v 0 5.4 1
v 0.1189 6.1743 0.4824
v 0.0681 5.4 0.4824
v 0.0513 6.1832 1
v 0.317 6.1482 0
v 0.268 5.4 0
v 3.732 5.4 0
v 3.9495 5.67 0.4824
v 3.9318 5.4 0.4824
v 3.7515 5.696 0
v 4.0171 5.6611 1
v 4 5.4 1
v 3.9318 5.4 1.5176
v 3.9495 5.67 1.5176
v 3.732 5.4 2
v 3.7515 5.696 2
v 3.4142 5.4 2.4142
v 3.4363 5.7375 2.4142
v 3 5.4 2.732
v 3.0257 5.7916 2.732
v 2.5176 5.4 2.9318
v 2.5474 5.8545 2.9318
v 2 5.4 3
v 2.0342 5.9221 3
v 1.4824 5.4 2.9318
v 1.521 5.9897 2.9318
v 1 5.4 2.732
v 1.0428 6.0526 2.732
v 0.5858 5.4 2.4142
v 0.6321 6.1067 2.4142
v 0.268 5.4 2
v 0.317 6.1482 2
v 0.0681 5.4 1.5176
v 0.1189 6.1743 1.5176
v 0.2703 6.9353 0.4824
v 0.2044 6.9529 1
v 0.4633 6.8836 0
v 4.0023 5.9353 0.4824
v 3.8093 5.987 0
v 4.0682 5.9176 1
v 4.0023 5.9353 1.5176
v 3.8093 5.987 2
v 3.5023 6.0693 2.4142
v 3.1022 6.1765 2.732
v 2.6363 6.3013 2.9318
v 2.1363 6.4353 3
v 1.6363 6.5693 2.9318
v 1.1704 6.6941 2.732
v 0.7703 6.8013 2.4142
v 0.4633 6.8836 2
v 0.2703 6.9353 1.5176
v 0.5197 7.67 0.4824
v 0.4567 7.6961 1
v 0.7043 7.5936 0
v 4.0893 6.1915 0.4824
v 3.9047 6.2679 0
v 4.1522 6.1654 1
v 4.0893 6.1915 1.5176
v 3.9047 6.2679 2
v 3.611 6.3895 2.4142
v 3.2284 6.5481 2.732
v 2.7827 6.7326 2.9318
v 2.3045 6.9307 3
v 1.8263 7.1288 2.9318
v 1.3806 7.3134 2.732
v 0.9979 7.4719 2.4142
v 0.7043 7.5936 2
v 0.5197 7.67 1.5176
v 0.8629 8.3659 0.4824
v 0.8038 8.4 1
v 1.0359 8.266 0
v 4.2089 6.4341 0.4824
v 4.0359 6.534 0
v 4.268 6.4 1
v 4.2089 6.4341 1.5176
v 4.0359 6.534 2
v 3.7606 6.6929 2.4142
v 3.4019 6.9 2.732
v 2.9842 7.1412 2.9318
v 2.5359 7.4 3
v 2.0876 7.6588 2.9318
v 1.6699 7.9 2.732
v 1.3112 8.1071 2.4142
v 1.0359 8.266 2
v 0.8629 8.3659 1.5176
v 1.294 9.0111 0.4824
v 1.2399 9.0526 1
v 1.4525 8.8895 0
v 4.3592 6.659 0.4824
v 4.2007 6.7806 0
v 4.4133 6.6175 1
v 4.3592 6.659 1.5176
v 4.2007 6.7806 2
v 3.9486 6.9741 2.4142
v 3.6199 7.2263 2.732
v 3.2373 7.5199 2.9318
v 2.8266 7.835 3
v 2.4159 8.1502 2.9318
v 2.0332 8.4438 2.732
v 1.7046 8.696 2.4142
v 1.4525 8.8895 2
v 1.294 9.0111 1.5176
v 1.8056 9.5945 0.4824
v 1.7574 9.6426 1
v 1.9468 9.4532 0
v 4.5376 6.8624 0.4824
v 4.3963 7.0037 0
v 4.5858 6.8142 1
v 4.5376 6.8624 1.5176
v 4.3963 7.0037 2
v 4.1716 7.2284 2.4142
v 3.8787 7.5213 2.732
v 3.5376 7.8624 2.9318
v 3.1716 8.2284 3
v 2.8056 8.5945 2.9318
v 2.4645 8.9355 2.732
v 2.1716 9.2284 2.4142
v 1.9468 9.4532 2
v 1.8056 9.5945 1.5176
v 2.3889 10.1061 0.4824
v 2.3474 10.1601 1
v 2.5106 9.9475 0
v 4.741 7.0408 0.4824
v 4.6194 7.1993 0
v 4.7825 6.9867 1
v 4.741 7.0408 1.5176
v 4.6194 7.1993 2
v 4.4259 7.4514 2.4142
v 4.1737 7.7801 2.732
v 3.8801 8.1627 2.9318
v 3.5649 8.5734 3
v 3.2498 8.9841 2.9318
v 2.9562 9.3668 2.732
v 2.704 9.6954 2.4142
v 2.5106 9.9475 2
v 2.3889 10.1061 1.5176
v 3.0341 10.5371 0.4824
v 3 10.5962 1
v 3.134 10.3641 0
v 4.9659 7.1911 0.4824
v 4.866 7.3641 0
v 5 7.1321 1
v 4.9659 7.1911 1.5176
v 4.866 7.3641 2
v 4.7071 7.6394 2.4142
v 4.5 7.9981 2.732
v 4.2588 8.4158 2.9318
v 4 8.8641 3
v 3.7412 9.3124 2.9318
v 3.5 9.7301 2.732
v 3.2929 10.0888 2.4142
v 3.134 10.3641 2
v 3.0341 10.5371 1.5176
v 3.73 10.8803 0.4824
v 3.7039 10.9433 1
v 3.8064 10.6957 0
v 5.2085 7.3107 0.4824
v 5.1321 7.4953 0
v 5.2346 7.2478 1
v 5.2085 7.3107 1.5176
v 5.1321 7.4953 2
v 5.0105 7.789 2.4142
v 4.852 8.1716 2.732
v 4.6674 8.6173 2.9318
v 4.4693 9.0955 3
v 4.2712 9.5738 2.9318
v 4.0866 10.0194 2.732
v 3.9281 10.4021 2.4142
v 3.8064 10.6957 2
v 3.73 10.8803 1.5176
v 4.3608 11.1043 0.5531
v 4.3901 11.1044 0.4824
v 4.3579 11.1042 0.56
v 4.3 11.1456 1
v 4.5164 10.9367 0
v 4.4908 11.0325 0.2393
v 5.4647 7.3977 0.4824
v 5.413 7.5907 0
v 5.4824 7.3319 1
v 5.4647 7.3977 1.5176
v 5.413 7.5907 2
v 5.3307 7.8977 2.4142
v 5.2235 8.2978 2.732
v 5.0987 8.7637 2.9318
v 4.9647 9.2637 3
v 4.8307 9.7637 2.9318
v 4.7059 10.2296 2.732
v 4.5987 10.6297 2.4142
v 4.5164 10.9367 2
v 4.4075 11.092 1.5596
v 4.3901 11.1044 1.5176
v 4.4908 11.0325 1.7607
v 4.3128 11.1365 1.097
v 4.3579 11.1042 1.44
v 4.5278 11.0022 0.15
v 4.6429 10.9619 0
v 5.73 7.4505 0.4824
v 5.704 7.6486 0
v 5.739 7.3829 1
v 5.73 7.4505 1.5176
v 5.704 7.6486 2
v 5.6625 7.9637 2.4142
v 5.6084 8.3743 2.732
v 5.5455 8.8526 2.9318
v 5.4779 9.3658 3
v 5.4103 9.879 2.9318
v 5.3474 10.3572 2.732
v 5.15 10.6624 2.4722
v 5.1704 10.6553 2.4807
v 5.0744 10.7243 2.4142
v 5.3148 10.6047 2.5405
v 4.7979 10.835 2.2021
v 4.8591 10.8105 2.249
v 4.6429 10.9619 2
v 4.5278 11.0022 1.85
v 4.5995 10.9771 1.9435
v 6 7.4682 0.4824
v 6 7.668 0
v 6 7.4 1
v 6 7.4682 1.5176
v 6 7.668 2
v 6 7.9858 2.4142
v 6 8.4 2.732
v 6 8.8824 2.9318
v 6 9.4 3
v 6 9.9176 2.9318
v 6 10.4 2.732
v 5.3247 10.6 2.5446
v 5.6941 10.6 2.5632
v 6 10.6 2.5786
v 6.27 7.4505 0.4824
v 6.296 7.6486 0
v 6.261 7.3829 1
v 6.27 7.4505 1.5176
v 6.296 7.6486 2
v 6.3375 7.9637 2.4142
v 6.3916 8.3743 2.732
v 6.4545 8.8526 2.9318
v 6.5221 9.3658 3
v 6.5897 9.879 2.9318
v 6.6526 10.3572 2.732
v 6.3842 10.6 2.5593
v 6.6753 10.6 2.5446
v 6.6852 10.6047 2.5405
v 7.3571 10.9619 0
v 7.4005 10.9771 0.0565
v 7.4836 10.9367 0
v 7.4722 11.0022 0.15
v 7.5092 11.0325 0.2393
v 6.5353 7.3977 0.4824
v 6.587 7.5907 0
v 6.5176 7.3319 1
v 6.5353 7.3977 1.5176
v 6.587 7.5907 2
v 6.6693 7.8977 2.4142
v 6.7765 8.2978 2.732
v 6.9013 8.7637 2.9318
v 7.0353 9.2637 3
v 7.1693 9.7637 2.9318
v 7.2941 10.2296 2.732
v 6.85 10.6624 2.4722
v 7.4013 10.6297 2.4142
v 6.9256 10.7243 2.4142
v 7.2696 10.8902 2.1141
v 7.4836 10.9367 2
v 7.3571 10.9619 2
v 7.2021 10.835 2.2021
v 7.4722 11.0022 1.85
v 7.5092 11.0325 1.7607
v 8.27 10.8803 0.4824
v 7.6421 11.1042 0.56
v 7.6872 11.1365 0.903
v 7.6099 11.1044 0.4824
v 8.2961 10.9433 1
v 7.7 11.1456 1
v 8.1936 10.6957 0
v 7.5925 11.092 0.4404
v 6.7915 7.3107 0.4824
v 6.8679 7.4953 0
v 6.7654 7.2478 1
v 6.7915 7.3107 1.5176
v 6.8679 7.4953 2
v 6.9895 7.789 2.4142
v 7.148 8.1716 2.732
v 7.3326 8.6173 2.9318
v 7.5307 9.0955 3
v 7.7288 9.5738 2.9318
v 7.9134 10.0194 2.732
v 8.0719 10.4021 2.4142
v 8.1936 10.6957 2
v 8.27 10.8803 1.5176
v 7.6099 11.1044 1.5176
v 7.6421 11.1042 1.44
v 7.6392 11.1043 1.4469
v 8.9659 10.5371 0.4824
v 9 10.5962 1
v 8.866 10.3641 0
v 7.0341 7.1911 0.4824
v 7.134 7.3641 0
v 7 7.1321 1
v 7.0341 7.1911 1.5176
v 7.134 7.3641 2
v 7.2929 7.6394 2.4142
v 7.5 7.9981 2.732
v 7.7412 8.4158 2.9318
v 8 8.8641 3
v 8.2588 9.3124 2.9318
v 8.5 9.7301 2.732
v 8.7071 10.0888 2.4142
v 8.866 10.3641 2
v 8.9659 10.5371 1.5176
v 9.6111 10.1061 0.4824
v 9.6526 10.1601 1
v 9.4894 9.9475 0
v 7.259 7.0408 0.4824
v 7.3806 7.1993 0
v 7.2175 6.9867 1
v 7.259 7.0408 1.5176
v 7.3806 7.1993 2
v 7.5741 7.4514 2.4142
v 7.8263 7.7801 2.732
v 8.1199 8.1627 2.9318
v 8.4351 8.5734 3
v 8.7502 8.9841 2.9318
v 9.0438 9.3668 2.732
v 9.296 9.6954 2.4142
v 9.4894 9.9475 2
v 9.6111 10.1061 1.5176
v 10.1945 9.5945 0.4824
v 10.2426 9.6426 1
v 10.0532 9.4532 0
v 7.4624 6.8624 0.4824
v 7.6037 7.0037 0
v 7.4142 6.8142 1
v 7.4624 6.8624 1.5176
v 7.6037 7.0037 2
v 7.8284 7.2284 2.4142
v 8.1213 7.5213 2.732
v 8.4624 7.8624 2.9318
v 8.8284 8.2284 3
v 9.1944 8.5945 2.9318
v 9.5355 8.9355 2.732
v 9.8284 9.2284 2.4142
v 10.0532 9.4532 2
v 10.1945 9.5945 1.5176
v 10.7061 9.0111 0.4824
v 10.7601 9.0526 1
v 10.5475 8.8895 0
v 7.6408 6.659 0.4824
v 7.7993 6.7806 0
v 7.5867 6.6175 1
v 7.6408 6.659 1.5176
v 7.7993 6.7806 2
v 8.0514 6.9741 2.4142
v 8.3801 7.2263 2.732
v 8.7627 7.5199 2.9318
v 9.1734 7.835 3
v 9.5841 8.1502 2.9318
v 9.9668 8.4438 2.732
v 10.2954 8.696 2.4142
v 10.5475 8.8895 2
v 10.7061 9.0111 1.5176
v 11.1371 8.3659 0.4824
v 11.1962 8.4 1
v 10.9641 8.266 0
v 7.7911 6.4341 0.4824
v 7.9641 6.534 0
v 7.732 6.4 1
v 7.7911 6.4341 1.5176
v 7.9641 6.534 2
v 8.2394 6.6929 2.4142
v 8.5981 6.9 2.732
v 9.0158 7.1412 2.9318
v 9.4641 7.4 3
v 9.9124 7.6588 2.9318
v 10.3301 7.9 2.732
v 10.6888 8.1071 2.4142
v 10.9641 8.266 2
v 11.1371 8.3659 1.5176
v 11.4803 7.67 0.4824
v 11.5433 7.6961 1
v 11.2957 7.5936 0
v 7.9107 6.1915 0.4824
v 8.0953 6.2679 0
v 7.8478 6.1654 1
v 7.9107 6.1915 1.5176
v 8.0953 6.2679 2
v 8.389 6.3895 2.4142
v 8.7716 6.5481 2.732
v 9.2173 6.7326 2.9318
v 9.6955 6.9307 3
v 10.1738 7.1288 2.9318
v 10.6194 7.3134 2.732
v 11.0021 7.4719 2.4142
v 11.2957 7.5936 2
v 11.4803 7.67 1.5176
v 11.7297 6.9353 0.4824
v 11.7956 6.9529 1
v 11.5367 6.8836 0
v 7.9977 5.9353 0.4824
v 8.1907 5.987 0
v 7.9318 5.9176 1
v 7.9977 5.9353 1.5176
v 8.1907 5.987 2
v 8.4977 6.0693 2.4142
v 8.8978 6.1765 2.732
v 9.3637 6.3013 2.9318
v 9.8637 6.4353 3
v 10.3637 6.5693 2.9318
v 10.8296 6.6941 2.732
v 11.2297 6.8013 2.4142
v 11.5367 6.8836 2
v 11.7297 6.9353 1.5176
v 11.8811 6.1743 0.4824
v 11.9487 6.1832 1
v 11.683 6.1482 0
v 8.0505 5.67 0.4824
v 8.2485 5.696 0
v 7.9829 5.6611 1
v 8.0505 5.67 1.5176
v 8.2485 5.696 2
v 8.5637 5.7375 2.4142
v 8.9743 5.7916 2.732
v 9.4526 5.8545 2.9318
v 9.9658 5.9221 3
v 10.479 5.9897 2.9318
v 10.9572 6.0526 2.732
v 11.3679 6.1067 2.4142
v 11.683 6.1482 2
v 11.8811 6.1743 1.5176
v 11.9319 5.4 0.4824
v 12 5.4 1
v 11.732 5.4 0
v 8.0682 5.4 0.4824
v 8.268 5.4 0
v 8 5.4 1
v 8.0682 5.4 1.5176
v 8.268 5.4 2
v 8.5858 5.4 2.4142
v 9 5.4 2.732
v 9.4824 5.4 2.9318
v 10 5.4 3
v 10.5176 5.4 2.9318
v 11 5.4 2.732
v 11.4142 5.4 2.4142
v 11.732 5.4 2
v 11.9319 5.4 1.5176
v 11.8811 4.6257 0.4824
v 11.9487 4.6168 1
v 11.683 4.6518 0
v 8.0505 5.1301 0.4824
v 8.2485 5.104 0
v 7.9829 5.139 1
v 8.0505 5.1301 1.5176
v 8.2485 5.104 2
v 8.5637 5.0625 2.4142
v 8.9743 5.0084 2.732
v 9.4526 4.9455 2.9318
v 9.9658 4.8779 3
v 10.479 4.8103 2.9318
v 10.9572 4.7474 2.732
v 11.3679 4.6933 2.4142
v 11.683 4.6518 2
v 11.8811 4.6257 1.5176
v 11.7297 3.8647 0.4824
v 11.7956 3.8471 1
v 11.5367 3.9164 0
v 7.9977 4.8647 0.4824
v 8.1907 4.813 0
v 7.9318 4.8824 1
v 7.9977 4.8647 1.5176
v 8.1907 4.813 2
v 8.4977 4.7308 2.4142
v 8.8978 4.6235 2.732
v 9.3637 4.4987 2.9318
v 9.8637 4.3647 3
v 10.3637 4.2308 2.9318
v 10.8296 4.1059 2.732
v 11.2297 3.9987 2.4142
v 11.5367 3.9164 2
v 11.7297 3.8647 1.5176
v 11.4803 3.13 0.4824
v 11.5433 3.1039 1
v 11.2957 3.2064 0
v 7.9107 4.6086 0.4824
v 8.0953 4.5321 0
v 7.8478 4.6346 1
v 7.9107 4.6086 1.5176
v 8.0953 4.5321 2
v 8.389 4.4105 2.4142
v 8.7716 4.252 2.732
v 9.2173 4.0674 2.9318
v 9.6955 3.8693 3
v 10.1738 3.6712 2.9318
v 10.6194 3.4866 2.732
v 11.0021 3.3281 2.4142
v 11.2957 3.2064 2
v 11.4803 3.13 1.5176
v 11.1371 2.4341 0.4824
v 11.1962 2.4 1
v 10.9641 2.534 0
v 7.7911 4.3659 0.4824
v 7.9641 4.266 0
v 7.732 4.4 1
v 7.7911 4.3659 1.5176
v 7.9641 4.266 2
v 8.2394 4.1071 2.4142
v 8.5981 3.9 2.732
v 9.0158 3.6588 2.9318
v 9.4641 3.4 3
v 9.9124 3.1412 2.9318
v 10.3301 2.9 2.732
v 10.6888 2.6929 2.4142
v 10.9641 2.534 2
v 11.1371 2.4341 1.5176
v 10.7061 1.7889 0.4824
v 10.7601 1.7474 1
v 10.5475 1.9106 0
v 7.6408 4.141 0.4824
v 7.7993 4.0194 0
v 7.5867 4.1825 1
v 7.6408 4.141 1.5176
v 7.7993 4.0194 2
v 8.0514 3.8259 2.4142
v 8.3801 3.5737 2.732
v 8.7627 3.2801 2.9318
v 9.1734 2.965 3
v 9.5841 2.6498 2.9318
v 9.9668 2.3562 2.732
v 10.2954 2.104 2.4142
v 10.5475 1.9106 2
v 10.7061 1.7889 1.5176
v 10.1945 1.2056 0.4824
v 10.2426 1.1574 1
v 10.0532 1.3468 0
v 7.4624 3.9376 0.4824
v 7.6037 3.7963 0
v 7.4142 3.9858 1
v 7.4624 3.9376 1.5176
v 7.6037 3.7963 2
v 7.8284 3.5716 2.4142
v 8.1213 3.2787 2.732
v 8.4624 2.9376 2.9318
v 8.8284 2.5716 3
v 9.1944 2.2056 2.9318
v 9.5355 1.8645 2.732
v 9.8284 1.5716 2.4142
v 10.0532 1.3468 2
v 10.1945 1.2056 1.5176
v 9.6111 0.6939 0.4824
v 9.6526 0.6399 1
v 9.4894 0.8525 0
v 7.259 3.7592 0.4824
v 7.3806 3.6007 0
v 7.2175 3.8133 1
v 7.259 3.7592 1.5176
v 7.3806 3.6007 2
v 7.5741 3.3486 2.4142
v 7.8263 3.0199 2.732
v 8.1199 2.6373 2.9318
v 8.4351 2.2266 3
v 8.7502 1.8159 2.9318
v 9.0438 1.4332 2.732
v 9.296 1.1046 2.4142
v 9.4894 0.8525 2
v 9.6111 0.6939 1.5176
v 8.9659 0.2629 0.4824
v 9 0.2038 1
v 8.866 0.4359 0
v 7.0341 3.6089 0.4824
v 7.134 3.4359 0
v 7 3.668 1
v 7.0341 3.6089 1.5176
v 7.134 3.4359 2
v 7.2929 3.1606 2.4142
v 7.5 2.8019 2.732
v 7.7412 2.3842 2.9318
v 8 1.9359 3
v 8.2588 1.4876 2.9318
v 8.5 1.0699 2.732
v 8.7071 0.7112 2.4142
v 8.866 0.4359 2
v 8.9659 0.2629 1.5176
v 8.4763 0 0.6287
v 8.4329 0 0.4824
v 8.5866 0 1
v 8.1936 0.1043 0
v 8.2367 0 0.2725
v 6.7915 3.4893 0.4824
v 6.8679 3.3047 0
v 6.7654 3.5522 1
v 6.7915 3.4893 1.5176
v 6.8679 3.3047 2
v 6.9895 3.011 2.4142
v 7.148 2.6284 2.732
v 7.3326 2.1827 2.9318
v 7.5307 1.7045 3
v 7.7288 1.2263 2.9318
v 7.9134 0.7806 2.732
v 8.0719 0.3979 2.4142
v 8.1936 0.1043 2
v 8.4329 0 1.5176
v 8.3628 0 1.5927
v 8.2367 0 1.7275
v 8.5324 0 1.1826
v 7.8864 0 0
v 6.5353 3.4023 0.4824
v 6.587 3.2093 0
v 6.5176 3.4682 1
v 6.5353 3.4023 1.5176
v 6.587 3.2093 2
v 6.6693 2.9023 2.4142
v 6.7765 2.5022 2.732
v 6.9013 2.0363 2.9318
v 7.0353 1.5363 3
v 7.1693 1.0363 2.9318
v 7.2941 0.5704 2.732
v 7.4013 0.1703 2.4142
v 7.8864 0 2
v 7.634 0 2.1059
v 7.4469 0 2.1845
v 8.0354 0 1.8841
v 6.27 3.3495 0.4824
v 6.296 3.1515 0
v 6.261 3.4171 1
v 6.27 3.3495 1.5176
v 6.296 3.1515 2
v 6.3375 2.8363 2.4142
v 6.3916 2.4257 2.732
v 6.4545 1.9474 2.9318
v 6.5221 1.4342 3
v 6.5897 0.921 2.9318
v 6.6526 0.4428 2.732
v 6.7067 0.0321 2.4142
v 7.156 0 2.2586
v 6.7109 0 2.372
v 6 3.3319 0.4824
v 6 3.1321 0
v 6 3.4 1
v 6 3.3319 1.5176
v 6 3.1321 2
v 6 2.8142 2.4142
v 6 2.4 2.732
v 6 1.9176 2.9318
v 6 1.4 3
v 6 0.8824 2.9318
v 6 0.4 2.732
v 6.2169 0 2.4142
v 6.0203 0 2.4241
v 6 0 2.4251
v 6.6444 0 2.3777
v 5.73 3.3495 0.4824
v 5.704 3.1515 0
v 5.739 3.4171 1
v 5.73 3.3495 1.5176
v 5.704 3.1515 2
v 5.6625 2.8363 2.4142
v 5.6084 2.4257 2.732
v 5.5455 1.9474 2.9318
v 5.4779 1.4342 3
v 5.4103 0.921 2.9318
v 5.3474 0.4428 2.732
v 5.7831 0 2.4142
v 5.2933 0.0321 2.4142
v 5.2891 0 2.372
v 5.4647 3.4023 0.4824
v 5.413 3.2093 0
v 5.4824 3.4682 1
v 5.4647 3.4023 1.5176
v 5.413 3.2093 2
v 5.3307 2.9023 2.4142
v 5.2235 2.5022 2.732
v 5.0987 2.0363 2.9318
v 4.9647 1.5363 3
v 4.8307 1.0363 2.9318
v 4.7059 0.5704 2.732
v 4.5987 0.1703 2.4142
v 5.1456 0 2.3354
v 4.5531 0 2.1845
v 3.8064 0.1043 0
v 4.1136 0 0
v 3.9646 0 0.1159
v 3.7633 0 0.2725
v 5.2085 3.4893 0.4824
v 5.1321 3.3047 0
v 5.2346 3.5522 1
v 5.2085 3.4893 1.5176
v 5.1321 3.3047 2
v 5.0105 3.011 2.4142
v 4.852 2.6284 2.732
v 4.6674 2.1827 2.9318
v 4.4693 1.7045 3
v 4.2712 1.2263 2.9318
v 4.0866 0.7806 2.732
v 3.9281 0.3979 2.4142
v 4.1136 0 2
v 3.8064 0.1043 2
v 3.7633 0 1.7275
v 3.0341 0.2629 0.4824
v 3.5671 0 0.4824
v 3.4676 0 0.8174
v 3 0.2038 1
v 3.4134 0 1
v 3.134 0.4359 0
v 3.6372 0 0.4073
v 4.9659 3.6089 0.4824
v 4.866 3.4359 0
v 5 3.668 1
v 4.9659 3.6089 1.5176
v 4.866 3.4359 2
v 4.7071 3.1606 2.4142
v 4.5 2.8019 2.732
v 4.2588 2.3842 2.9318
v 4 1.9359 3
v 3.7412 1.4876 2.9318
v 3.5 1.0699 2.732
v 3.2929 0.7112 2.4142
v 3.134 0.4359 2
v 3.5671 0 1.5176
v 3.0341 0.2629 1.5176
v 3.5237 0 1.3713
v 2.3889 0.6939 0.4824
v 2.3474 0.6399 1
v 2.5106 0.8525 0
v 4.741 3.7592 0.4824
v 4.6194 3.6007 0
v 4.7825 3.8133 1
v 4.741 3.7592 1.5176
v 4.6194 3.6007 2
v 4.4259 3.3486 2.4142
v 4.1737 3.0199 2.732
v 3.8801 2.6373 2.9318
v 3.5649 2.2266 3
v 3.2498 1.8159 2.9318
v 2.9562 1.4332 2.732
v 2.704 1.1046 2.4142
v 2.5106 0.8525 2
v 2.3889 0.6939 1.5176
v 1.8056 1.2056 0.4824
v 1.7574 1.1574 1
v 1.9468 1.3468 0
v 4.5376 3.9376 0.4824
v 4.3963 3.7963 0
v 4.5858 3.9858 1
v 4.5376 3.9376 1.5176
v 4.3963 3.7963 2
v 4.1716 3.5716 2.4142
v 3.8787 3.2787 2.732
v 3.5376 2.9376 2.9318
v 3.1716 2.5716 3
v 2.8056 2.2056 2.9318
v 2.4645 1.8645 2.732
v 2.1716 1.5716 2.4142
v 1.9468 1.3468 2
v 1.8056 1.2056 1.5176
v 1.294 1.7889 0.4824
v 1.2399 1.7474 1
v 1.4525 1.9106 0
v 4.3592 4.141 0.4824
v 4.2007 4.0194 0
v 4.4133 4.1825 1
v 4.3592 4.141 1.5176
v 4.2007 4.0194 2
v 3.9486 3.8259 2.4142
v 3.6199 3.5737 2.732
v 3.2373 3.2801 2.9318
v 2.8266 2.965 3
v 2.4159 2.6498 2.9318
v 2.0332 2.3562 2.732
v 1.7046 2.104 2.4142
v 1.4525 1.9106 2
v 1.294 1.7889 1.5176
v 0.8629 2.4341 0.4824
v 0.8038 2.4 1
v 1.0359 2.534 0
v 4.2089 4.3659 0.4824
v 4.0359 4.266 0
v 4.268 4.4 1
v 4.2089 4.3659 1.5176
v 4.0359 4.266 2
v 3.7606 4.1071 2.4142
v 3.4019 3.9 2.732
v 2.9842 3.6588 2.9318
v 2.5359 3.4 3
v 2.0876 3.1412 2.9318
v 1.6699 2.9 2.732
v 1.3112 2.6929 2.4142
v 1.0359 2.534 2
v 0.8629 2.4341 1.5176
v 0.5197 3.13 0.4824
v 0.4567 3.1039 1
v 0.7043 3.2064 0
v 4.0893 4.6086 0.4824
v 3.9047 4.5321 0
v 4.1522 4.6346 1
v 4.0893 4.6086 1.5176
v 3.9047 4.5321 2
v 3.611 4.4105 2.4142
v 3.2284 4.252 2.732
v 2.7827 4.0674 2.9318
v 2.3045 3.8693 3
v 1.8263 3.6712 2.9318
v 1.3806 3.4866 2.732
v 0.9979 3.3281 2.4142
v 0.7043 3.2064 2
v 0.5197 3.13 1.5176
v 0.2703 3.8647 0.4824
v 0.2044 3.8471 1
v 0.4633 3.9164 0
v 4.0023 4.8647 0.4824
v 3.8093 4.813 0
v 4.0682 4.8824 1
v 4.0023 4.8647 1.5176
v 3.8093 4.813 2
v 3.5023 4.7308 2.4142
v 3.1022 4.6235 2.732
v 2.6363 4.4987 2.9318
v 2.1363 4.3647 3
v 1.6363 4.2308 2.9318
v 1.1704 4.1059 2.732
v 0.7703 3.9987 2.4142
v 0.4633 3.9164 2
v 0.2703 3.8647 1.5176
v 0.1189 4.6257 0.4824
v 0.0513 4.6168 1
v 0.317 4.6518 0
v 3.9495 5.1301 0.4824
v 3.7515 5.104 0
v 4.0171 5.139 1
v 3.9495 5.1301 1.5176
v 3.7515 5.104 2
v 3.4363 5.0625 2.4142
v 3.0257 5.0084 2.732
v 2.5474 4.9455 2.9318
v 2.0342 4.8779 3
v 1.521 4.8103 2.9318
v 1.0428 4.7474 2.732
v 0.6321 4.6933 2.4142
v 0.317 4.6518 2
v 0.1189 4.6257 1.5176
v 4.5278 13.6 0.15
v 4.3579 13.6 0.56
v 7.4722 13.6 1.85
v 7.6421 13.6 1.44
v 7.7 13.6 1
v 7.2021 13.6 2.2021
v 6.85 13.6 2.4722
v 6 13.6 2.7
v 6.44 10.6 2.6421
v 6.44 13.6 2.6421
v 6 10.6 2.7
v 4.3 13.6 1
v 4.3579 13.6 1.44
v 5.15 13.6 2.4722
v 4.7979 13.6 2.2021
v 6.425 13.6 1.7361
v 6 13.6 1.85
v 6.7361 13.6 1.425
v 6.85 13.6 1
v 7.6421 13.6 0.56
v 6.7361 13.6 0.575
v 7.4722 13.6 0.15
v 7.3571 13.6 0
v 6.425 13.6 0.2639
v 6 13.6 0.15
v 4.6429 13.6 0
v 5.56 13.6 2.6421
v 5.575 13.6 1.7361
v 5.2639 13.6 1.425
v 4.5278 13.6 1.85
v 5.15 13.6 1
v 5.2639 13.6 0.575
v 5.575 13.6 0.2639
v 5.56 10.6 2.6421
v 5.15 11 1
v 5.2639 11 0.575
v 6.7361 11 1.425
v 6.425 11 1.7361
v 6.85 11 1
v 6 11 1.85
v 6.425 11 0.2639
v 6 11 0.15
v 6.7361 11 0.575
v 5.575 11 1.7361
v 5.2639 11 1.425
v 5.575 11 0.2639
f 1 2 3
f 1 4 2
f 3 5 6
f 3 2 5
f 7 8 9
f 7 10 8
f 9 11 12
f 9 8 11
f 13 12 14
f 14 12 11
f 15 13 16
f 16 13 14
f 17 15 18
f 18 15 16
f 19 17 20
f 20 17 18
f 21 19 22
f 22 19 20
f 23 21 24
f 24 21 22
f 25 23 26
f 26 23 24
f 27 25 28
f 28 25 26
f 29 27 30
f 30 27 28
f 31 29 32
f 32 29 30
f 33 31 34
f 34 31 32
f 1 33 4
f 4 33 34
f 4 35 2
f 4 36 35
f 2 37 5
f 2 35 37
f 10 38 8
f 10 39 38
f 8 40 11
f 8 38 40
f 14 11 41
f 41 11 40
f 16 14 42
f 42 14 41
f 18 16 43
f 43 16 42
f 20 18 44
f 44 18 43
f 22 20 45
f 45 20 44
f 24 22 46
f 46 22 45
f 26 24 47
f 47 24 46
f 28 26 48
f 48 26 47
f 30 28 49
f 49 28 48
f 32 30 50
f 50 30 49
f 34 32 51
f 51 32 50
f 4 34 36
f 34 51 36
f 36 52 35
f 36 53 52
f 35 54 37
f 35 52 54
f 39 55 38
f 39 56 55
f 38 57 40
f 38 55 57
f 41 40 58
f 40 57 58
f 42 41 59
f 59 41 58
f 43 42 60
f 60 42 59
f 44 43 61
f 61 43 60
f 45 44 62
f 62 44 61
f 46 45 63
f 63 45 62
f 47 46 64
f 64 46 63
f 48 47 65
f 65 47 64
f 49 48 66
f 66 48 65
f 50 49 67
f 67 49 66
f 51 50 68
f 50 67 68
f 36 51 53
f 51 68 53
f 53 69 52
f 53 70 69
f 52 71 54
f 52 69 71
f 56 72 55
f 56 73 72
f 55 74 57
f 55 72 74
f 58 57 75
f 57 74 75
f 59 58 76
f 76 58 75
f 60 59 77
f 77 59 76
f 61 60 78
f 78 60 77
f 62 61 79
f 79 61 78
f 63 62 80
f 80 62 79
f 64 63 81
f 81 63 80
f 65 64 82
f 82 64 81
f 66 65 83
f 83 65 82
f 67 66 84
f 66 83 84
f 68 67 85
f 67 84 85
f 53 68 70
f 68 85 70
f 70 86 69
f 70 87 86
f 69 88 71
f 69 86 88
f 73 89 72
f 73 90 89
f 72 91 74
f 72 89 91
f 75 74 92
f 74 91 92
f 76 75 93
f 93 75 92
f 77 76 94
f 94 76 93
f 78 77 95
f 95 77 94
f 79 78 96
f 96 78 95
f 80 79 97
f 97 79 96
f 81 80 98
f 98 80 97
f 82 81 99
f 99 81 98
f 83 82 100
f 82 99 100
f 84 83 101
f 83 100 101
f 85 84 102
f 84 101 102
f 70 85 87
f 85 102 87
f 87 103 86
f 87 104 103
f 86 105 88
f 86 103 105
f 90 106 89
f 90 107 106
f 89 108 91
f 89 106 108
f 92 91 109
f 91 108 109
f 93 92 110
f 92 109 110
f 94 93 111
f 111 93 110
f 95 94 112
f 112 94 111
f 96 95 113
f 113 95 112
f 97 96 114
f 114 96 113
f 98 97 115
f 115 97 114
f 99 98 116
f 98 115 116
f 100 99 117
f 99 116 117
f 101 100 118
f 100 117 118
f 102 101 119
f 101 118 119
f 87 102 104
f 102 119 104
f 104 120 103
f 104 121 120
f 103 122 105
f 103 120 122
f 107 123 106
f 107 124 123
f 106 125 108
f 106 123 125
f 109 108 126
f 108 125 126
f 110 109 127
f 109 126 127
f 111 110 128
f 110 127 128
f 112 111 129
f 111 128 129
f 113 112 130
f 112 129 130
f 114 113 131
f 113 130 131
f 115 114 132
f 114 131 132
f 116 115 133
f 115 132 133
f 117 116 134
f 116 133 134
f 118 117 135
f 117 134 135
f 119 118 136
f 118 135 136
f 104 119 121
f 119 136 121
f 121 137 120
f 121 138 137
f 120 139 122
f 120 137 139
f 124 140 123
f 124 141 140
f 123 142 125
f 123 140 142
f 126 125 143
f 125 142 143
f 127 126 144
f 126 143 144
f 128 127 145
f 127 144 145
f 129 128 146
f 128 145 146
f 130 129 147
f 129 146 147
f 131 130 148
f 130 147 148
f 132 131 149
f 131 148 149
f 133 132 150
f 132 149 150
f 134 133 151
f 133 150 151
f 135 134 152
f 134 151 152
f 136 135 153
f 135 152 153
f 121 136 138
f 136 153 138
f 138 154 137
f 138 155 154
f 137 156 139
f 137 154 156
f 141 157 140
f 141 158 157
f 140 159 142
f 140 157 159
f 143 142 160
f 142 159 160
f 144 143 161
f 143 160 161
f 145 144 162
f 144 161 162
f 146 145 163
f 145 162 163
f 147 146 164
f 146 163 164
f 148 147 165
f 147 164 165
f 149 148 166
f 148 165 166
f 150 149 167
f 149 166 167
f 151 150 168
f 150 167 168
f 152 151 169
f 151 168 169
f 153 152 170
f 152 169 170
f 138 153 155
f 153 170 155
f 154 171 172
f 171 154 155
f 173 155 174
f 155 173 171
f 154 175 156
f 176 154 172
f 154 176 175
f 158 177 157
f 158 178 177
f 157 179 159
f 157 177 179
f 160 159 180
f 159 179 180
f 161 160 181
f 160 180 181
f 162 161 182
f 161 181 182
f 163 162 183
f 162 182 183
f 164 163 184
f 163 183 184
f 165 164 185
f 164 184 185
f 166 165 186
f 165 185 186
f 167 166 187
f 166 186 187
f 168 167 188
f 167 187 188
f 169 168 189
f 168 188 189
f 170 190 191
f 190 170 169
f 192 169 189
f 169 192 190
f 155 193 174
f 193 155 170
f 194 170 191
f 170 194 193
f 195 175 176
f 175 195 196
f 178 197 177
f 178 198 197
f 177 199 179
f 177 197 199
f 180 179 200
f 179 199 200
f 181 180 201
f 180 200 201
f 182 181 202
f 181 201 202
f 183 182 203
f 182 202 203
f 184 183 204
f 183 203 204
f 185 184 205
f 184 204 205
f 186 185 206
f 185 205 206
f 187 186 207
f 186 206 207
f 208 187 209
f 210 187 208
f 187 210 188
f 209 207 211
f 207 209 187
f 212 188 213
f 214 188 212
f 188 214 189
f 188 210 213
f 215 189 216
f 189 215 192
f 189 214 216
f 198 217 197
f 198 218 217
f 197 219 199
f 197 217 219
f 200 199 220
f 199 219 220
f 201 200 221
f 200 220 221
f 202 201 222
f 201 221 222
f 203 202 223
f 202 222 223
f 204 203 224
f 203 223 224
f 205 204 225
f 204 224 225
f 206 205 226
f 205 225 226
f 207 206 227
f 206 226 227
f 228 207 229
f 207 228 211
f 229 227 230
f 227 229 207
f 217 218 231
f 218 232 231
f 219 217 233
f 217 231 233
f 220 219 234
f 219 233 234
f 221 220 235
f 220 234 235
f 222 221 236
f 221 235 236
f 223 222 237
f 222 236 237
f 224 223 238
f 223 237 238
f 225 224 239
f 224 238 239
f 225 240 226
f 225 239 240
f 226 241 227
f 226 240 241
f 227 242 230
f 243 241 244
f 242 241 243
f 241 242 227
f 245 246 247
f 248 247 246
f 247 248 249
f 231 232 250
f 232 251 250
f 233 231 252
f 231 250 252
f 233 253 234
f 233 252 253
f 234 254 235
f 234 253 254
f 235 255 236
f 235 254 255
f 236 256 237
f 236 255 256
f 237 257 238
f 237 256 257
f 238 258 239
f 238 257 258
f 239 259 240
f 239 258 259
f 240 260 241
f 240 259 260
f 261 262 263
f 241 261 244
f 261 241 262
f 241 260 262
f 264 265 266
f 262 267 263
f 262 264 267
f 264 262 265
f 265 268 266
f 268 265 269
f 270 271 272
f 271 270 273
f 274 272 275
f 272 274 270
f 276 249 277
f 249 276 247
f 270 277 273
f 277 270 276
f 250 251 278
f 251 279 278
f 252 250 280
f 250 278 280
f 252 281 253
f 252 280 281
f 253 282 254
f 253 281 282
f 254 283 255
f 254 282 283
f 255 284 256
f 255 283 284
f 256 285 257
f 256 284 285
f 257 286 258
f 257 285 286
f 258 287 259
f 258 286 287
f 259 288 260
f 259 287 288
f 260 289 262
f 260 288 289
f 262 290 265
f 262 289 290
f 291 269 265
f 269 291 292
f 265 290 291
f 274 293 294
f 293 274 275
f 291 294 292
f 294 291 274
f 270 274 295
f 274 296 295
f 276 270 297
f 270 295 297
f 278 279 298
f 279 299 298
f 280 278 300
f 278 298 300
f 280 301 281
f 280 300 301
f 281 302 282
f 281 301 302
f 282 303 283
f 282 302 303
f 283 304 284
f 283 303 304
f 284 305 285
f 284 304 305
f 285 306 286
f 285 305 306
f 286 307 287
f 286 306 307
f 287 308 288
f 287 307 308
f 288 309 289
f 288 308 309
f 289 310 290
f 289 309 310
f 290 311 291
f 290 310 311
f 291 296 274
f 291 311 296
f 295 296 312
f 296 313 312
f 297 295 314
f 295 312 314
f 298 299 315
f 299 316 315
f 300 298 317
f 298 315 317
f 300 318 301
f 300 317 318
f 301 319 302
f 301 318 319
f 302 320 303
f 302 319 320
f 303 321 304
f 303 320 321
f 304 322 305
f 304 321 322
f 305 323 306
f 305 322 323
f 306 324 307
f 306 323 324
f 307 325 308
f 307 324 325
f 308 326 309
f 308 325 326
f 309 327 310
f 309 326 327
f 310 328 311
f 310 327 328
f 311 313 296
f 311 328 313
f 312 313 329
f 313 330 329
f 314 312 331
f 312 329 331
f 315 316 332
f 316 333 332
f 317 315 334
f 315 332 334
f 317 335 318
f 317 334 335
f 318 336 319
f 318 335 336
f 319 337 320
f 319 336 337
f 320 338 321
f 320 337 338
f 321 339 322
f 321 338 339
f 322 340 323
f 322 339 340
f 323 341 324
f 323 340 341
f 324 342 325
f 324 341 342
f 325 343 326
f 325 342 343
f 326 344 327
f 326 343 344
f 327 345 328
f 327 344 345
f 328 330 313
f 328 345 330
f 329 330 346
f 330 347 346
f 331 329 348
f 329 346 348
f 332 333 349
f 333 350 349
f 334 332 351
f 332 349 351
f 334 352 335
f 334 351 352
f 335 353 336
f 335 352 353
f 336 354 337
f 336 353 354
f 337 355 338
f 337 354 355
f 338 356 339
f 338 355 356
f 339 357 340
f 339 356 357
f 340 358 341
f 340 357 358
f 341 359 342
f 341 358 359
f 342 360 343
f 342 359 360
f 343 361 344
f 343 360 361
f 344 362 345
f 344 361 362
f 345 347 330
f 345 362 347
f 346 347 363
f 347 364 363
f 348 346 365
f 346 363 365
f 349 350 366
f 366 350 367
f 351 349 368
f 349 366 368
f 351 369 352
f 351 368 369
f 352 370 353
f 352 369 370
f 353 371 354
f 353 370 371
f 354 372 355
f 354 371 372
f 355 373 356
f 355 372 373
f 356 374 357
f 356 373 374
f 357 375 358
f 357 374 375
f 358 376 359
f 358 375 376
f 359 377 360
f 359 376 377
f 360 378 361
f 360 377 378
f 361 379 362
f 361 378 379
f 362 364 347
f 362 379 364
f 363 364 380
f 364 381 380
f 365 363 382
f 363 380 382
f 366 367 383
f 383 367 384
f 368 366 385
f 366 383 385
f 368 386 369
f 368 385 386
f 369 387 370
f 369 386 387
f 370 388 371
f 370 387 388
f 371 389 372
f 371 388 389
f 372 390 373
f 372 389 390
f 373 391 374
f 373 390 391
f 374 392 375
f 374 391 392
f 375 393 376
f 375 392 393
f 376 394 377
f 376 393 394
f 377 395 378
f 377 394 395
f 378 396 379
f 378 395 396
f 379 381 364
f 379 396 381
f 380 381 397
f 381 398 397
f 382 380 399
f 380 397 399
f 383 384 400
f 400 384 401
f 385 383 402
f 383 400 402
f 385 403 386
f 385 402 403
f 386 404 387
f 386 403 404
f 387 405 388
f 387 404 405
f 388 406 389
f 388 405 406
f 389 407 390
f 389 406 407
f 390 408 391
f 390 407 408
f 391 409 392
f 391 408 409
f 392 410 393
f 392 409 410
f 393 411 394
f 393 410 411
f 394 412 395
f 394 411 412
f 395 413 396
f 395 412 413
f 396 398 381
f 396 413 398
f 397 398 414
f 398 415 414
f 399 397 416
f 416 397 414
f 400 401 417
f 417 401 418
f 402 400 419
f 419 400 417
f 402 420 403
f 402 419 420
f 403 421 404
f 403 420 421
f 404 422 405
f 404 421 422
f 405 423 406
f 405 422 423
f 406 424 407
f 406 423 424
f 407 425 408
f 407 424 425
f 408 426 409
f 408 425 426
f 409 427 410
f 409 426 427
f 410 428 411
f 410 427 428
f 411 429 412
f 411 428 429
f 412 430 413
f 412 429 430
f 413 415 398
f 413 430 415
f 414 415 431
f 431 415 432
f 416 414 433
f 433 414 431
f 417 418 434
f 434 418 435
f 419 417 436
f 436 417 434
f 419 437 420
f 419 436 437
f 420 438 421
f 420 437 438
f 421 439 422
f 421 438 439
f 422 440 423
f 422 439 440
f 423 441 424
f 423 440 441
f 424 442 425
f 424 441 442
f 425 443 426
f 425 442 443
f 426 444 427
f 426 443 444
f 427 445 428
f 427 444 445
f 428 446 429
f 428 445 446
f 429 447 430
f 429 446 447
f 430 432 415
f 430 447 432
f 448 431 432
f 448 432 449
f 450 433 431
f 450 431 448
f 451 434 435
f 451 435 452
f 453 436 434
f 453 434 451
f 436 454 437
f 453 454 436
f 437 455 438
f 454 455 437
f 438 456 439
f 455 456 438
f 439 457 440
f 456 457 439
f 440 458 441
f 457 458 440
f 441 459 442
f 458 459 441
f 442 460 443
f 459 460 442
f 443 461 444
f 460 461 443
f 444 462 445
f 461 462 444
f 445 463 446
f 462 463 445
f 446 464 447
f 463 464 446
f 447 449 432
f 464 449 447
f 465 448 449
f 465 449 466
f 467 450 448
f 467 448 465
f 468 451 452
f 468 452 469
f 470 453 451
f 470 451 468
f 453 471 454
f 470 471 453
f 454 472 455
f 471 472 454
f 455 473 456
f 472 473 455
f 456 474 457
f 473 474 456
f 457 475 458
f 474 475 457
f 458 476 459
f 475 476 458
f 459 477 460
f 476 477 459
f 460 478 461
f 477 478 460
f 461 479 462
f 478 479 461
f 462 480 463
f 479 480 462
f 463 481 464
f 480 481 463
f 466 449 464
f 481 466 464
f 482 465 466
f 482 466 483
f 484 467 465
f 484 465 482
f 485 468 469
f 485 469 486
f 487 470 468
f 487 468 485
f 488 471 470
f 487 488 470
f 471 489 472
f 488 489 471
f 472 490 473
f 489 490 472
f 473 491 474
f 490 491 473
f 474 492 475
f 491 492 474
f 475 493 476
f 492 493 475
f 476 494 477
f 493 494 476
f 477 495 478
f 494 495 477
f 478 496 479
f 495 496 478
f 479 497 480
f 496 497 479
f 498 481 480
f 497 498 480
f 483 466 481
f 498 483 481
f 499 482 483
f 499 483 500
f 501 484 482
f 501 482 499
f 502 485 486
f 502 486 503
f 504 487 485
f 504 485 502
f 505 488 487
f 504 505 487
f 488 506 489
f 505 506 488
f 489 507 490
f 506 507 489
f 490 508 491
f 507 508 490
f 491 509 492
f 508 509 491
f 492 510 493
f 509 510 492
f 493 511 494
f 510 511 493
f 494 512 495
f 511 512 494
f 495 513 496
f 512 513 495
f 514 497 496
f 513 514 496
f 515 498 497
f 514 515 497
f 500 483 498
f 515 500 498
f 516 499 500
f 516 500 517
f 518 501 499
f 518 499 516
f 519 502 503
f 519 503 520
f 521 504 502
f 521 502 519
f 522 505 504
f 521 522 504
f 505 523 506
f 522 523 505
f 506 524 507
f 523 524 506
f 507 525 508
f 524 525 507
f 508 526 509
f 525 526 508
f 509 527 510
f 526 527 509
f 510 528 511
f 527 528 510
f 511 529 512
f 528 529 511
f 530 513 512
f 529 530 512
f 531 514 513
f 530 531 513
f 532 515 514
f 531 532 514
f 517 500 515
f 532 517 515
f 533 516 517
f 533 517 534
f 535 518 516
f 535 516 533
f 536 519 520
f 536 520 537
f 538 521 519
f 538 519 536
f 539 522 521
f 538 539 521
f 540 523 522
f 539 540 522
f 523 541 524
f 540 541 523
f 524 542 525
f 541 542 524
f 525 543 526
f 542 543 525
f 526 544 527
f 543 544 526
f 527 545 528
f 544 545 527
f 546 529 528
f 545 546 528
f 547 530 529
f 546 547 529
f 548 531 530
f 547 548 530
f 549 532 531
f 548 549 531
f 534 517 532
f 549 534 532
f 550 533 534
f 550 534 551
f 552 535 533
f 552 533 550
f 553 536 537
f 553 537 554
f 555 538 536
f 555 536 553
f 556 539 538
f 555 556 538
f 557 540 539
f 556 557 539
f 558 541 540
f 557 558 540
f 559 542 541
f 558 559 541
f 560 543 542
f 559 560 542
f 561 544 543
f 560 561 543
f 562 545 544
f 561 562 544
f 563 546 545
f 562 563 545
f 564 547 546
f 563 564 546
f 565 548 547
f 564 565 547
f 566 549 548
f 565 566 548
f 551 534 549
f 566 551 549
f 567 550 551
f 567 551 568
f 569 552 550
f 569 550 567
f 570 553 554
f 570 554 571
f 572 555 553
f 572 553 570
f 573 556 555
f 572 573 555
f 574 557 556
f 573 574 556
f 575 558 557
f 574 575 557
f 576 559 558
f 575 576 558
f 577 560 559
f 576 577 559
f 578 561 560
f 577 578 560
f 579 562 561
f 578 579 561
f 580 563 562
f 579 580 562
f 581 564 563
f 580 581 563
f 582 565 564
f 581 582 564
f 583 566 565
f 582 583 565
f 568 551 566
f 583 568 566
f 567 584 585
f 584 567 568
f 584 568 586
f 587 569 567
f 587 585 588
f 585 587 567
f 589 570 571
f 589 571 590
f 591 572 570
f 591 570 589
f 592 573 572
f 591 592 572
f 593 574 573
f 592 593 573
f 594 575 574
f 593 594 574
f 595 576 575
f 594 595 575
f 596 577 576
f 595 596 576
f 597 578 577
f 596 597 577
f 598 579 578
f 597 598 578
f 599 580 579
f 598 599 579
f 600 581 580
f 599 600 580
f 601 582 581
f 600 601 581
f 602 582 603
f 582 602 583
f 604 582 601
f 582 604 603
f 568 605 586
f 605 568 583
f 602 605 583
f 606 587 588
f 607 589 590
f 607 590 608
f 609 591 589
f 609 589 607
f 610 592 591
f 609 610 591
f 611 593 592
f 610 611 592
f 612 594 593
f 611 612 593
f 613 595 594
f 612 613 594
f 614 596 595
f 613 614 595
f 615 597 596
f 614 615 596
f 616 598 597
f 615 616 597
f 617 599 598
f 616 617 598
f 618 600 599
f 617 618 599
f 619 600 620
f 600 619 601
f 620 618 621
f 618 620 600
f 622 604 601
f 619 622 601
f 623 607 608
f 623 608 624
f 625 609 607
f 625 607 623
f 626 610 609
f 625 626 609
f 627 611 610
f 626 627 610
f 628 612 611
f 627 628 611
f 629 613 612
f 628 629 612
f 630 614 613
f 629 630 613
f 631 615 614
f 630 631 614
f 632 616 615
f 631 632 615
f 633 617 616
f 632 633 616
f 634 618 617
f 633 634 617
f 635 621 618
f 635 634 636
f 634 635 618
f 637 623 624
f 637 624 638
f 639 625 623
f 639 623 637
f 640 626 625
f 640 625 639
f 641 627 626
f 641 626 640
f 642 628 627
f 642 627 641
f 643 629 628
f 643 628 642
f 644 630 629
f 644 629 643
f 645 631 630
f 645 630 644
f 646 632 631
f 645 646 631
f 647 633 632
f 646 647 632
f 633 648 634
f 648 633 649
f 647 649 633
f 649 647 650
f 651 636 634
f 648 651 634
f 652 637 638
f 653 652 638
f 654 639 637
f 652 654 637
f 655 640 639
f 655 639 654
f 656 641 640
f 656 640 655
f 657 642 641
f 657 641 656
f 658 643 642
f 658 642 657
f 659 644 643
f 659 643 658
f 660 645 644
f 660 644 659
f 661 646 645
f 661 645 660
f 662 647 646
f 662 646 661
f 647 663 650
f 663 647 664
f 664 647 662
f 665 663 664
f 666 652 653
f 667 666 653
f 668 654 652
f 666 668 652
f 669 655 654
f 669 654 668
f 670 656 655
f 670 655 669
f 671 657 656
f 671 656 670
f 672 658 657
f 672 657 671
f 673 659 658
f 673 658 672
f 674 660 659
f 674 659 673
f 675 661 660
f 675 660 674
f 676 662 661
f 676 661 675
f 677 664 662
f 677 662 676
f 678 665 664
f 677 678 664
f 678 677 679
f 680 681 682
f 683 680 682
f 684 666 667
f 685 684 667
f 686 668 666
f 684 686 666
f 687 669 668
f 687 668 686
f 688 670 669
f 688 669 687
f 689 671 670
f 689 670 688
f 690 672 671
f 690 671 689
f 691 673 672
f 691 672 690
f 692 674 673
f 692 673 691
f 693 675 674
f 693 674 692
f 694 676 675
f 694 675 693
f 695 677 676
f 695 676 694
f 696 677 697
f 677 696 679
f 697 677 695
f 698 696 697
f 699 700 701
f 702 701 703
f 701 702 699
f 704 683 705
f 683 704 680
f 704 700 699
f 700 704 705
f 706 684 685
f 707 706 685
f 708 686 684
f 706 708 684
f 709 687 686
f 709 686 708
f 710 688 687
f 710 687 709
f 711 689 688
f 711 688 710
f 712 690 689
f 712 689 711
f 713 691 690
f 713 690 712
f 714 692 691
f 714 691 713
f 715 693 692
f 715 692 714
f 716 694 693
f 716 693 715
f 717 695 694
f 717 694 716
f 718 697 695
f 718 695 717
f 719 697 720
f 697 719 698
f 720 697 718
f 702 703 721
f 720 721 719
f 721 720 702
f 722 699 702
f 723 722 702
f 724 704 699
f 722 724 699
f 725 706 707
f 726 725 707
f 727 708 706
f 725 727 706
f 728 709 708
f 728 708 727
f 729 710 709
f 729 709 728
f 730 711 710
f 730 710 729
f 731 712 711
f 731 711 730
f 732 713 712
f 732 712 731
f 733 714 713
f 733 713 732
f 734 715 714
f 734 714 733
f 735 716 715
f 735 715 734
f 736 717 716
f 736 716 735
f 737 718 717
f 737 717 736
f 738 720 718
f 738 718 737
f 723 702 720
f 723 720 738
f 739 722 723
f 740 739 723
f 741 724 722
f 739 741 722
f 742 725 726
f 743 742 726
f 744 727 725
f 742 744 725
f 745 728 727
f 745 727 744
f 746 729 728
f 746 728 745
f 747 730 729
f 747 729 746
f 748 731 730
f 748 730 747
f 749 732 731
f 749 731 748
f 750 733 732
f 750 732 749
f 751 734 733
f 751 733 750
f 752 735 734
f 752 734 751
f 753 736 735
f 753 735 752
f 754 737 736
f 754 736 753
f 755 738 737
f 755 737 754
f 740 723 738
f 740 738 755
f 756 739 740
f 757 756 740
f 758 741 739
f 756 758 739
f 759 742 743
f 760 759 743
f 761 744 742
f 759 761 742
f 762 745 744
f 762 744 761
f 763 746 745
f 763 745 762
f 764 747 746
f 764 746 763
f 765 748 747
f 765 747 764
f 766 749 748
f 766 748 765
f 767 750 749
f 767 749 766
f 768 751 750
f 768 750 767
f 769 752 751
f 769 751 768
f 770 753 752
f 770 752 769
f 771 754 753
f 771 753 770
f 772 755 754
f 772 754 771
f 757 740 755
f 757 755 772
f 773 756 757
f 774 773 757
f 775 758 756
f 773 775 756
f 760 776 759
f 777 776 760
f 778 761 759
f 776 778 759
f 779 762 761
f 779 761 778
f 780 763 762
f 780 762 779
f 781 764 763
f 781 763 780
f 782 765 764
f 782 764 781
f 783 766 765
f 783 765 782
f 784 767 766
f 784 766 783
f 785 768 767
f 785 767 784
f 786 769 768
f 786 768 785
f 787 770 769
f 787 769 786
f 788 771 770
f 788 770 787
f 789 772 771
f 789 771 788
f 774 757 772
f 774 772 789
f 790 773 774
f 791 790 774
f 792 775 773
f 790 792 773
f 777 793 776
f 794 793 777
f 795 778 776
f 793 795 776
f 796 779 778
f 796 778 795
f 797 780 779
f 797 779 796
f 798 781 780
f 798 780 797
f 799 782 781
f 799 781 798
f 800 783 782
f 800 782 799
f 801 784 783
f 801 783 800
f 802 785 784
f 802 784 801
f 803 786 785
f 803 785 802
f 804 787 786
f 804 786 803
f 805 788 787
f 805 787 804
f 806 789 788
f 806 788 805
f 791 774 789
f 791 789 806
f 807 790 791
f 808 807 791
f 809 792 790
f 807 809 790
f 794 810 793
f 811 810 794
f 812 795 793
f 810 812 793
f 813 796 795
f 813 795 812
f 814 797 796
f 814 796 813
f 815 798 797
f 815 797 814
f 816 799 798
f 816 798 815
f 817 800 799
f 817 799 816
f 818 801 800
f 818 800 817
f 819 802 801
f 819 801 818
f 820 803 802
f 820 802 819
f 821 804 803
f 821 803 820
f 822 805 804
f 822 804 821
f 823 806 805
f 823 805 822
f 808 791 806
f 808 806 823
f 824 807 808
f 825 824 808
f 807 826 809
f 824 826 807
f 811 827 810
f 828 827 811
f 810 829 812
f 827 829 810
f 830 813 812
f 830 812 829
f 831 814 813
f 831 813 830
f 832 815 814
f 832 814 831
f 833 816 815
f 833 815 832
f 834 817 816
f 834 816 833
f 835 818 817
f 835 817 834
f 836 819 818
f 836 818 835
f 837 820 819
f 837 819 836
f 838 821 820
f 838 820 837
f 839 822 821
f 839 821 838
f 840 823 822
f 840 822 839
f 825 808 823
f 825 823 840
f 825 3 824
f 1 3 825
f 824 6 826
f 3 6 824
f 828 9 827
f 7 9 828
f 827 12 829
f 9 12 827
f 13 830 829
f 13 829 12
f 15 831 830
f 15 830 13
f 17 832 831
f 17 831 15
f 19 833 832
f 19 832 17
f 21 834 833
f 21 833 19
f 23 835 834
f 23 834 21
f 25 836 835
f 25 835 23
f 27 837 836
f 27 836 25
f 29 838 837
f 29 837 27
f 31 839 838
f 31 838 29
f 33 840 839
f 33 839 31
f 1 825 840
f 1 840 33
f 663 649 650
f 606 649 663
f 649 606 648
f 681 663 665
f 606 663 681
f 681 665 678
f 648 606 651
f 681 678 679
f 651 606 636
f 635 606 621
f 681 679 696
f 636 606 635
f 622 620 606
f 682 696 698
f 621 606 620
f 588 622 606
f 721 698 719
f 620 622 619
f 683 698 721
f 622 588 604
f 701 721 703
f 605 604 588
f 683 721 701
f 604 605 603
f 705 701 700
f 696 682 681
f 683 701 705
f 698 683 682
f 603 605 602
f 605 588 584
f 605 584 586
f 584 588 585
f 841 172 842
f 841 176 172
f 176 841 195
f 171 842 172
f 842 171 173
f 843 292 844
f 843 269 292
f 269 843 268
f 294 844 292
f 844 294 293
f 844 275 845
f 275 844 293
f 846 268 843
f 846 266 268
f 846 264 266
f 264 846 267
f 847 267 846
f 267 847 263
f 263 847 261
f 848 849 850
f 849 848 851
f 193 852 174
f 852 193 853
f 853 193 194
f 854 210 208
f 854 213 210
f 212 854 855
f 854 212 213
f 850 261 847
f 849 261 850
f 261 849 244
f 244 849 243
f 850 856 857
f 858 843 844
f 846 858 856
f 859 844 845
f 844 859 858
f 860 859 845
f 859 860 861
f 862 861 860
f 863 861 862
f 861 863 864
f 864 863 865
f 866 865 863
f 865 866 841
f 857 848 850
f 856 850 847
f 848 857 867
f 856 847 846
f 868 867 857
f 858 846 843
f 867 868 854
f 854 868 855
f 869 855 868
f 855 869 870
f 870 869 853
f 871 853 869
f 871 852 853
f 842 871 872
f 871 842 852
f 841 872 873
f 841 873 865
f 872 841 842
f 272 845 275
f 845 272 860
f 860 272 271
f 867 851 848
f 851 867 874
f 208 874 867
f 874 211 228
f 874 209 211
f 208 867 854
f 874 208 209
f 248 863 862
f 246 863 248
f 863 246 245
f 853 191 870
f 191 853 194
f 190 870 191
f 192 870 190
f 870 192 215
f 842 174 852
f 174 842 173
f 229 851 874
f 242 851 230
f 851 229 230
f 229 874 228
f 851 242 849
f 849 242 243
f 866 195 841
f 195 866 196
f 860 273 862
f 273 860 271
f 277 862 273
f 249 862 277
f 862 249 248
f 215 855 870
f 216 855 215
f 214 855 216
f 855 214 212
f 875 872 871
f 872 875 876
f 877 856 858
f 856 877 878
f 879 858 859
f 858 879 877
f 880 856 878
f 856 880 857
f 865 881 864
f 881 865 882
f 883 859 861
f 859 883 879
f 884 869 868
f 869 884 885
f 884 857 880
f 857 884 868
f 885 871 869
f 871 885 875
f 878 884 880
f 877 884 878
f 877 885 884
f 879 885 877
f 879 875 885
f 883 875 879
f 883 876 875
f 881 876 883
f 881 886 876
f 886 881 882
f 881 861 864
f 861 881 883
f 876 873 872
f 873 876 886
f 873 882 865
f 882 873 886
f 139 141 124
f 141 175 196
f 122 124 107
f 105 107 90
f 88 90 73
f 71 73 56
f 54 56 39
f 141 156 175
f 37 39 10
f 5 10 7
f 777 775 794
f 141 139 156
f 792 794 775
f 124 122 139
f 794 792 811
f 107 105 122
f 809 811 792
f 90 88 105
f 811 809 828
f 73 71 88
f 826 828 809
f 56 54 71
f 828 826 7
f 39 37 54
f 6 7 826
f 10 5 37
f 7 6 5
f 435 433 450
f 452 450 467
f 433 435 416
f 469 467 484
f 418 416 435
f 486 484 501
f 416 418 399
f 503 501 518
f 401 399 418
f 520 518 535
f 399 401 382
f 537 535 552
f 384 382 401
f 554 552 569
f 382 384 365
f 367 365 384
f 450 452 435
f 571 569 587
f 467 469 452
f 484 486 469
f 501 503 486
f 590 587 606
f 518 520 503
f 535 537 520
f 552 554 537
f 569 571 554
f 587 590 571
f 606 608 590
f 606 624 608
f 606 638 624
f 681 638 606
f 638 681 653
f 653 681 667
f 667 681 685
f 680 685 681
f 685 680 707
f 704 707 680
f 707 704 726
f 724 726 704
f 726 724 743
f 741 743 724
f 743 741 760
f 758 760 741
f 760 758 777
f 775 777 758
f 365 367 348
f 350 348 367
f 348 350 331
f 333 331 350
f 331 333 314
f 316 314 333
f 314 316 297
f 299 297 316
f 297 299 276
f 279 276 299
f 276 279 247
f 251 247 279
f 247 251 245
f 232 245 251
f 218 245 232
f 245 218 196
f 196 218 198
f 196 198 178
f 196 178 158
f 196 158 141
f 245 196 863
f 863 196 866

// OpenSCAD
// Donut_Vase.stl  -  Store Versile room frame (Rev C)
// Quantity: 1   Filament: White (e.g. PLA Basic Jade White / Matte Ivory White)
// Print: layer 0.12 mm, infill 20%, 2 walls, brim 0 mm, NO supports
// Orientation: back  (lying on its back, front face up)
// Notes: Flat back down.
// The library draws parts with their front toward +Y; mirror([0,1,0]) makes the real
// part face the viewer correctly (see build.py). Edit dimensions in versile_parts.scad.
use <../versile_parts.scad>

rotate([-90, 0, 0]) mirror([0, 1, 0]) donut_vase();
